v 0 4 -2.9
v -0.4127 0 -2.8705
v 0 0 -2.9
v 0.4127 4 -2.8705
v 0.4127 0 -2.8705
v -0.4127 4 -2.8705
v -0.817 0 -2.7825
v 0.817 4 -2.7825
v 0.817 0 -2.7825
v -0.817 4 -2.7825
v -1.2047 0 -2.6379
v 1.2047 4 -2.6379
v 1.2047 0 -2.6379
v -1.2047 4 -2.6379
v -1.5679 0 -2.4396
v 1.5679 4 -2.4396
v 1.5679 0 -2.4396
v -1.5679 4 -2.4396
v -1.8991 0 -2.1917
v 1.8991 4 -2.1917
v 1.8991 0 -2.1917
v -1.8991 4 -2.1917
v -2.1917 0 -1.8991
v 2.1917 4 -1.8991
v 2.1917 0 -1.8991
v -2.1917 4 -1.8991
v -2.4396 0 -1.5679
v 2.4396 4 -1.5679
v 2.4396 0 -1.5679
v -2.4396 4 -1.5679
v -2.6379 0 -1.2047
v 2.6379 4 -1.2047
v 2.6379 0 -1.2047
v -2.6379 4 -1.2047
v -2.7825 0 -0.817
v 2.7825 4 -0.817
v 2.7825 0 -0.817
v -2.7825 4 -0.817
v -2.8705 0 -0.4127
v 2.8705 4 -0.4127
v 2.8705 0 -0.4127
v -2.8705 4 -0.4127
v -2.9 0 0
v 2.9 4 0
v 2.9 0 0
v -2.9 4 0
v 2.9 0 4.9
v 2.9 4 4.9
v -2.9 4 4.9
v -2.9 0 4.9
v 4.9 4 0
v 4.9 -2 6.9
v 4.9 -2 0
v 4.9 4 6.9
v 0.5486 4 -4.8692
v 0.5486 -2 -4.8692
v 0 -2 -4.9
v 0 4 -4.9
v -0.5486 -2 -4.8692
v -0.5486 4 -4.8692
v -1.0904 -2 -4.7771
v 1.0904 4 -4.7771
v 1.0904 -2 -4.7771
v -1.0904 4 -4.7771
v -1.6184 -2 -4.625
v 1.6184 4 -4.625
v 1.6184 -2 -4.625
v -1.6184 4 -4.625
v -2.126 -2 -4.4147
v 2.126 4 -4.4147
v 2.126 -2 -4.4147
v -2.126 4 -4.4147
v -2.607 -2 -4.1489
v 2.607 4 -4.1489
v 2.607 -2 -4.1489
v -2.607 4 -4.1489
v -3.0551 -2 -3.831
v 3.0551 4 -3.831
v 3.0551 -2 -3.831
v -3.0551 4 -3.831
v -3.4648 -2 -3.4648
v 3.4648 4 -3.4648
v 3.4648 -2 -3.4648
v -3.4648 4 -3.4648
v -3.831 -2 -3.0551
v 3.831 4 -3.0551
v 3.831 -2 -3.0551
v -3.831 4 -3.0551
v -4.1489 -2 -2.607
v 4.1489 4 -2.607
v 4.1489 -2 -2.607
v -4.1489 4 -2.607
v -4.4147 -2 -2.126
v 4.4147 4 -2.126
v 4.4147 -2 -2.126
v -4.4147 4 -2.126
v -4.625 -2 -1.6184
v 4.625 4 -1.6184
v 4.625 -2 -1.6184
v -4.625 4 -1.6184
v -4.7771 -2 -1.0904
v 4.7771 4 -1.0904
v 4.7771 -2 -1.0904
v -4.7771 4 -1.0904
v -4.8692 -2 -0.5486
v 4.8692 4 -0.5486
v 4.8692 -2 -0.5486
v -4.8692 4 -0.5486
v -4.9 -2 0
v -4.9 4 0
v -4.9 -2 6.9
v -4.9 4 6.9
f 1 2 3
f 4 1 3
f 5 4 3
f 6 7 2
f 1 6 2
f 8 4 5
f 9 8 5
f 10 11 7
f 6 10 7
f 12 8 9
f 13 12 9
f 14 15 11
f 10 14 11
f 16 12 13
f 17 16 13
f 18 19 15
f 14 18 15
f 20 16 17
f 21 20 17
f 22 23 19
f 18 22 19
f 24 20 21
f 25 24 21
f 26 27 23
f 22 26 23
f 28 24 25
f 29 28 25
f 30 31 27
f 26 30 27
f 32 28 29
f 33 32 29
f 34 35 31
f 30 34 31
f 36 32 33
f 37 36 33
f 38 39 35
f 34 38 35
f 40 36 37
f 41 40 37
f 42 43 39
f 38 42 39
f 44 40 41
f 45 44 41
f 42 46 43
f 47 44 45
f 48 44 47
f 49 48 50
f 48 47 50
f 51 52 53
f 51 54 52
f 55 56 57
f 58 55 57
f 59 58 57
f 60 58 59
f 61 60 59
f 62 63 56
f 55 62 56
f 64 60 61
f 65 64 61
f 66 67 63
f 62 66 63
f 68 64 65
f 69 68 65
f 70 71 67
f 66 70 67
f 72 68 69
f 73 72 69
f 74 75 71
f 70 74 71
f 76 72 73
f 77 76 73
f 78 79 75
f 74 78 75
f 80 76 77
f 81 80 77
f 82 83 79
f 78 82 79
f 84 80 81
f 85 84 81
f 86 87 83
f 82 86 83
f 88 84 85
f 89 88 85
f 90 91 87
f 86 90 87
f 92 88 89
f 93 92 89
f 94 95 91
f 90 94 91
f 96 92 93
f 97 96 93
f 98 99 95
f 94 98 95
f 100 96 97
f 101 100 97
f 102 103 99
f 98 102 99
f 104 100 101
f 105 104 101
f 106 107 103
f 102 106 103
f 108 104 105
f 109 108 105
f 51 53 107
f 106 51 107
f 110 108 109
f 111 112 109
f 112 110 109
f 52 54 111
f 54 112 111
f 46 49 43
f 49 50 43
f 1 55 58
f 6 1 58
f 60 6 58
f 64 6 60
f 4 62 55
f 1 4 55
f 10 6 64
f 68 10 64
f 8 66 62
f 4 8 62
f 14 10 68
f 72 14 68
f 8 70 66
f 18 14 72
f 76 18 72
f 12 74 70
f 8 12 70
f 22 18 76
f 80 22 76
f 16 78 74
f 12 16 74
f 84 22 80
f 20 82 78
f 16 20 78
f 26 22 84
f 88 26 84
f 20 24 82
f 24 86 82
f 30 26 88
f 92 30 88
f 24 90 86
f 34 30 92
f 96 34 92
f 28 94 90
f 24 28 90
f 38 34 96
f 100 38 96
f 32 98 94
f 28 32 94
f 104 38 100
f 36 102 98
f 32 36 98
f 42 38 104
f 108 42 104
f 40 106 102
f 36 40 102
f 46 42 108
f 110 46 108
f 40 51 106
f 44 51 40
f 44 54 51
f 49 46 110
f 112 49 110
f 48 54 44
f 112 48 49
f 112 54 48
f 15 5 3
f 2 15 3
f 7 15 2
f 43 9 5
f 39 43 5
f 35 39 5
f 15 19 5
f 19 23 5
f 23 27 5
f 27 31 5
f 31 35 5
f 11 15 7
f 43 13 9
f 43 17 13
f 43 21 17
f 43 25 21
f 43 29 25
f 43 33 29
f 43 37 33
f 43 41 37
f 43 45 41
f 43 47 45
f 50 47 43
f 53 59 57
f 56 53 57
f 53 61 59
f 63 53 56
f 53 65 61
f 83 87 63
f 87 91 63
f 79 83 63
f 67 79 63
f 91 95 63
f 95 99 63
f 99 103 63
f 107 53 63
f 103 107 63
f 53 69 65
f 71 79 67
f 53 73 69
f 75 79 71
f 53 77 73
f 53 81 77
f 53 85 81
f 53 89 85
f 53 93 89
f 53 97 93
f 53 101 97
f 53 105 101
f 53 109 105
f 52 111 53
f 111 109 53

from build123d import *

# Parameters (mm, degrees)
BOSS_EXTRUDE1_DEPTH = 4
BOSS_EXTRUDE2_START = -2
BOSS_EXTRUDE2_DEPTH = 2


with BuildPart() as part:
    # Sketch1 → Boss-Extrude1 (new body)
    with BuildSketch(Plane(origin=(0, 0, 0), x_dir=(1, 0, 0), z_dir=(0, 1, 0))):
        with BuildLine():
            Line((4.9, -6.9), (4.9, 0))
            ThreePointArc((4.9, 0), (0, 4.9), (-4.9, 0))
            Line((-4.9, 0), (-4.9, -6.9))
            Line((-4.9, -6.9), (4.9, -6.9))
        make_face()
        with BuildLine():
            ThreePointArc((-2.9, 0), (0, 2.9), (2.9, 0))
            Line((2.9, 0), (2.9, -4.9))
            Line((2.9, -4.9), (-2.9, -4.9))
            Line((-2.9, -4.9), (-2.9, 0))
        make_face(mode=Mode.SUBTRACT)
    extrude(amount=BOSS_EXTRUDE1_DEPTH)

    # Sketch1<3> → Boss-Extrude2 (add)
    with BuildSketch(Plane(origin=(0, 0, 0), x_dir=(1, 0, 0), z_dir=(0, 1, 0)).offset(BOSS_EXTRUDE2_START)):
        with BuildLine():
            ThreePointArc((4.9, 0), (0, 4.9), (-4.9, 0))
            Line((-4.9, 0), (-4.9, -6.9))
            Line((-4.9, -6.9), (4.9, -6.9))
            Line((4.9, -6.9), (4.9, 0))
        make_face()
    extrude(amount=BOSS_EXTRUDE2_DEPTH)


solid = part.part
